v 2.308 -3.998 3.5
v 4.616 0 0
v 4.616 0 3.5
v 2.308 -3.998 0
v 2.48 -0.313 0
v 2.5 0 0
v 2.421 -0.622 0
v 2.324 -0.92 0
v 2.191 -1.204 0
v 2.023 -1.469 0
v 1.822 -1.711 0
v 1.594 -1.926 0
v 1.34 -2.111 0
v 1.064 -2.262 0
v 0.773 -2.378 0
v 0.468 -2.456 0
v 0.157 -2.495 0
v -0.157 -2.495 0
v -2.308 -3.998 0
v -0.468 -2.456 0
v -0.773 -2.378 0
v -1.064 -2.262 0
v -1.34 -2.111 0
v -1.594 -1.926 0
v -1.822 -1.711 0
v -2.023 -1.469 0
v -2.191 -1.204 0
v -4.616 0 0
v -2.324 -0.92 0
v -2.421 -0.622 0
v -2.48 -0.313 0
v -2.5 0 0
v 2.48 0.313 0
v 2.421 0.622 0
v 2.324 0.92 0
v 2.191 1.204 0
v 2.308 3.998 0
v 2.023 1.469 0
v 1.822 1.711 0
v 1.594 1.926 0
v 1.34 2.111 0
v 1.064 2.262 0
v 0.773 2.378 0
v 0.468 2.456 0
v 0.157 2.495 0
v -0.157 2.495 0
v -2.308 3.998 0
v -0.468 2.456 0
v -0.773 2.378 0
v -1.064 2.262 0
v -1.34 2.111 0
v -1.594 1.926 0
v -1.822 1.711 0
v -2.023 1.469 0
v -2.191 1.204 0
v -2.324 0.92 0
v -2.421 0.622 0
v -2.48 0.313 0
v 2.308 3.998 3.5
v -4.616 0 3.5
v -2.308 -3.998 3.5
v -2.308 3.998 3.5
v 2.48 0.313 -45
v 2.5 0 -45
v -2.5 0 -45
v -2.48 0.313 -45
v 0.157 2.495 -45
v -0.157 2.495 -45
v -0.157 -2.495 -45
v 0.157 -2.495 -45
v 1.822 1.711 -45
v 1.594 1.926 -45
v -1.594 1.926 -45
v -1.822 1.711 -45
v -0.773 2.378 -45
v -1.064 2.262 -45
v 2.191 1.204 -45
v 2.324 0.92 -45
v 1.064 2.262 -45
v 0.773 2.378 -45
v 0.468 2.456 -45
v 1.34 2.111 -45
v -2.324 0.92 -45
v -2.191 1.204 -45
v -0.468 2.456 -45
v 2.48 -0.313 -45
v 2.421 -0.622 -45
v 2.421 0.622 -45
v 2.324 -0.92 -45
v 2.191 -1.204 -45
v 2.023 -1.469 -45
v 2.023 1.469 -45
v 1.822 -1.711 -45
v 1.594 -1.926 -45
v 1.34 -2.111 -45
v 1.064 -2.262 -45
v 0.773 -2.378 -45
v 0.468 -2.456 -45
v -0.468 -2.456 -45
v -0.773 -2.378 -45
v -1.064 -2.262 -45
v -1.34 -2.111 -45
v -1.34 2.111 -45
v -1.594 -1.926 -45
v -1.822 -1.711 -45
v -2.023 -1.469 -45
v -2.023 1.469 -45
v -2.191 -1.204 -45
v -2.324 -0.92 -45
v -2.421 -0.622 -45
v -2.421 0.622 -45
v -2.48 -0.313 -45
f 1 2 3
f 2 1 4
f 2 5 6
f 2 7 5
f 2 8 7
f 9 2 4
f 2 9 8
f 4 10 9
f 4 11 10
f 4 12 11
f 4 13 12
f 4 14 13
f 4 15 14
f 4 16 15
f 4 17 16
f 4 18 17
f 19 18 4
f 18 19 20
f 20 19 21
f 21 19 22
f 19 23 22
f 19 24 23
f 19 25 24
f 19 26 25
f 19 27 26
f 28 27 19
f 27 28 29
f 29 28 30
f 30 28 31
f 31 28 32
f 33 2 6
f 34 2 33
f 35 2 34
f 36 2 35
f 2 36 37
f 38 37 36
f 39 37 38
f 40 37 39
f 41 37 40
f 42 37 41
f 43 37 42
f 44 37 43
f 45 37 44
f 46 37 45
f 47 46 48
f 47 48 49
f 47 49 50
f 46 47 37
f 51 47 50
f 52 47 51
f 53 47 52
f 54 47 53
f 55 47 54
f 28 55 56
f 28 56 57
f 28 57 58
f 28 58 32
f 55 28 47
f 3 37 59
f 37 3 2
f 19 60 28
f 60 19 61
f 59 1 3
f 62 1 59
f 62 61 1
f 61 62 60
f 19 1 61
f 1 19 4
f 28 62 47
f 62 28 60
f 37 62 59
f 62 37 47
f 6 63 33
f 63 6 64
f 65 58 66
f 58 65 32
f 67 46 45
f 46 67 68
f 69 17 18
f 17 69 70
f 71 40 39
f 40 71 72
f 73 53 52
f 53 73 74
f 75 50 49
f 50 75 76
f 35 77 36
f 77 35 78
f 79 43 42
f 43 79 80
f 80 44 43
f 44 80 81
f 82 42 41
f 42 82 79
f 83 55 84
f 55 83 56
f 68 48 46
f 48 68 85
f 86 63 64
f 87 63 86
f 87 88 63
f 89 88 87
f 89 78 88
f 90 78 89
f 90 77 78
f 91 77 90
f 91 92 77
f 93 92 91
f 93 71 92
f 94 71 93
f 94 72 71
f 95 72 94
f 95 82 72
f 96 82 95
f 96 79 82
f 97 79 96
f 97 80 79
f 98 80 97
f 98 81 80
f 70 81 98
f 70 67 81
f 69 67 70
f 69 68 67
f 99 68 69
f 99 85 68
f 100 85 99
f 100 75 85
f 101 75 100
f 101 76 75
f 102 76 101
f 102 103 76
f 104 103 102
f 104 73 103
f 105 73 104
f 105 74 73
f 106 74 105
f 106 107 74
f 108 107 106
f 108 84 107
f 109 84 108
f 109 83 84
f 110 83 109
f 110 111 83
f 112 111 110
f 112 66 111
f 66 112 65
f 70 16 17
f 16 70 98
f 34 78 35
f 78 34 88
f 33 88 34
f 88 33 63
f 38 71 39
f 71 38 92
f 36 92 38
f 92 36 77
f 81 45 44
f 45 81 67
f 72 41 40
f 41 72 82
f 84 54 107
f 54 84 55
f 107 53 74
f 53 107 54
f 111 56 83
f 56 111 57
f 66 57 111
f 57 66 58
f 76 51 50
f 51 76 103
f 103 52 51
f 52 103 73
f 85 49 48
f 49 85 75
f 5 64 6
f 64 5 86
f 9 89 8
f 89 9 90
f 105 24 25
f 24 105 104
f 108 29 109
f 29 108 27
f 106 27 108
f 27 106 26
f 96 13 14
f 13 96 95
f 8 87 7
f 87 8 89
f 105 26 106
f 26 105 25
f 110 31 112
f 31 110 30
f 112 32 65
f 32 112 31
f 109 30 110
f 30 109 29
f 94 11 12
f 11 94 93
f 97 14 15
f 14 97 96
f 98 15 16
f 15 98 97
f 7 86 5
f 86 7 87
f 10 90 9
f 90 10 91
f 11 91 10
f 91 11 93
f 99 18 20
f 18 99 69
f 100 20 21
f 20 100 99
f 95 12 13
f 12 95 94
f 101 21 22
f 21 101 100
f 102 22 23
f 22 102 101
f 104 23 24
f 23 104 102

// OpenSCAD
$fn = 50;


difference() {
	union() {
		translate(v = [0, 0, 0]) {
			rotate(a = [0, 0, 0]) {
				translate(v = [0, 0, 0]) {
					rotate(a = [0, 0, 0]) {
						linear_extrude(height = 3.5000000000) {
							polygon(points = [[4.6160000000, 0.0000000000], [2.3080000000, 3.9975732639], [-2.3080000000, 3.9975732639], [-4.6160000000, 0.0000000000], [-2.3080000000, -3.9975732639], [2.3080000000, -3.9975732639]]);
						}
					}
				}
			}
		}
		translate(v = [0, 0, -45]) {
			rotate(a = [0, 0, 0]) {
				cylinder(h = 45, r = 2.5000000000);
			}
		}
	}
	union();
}
